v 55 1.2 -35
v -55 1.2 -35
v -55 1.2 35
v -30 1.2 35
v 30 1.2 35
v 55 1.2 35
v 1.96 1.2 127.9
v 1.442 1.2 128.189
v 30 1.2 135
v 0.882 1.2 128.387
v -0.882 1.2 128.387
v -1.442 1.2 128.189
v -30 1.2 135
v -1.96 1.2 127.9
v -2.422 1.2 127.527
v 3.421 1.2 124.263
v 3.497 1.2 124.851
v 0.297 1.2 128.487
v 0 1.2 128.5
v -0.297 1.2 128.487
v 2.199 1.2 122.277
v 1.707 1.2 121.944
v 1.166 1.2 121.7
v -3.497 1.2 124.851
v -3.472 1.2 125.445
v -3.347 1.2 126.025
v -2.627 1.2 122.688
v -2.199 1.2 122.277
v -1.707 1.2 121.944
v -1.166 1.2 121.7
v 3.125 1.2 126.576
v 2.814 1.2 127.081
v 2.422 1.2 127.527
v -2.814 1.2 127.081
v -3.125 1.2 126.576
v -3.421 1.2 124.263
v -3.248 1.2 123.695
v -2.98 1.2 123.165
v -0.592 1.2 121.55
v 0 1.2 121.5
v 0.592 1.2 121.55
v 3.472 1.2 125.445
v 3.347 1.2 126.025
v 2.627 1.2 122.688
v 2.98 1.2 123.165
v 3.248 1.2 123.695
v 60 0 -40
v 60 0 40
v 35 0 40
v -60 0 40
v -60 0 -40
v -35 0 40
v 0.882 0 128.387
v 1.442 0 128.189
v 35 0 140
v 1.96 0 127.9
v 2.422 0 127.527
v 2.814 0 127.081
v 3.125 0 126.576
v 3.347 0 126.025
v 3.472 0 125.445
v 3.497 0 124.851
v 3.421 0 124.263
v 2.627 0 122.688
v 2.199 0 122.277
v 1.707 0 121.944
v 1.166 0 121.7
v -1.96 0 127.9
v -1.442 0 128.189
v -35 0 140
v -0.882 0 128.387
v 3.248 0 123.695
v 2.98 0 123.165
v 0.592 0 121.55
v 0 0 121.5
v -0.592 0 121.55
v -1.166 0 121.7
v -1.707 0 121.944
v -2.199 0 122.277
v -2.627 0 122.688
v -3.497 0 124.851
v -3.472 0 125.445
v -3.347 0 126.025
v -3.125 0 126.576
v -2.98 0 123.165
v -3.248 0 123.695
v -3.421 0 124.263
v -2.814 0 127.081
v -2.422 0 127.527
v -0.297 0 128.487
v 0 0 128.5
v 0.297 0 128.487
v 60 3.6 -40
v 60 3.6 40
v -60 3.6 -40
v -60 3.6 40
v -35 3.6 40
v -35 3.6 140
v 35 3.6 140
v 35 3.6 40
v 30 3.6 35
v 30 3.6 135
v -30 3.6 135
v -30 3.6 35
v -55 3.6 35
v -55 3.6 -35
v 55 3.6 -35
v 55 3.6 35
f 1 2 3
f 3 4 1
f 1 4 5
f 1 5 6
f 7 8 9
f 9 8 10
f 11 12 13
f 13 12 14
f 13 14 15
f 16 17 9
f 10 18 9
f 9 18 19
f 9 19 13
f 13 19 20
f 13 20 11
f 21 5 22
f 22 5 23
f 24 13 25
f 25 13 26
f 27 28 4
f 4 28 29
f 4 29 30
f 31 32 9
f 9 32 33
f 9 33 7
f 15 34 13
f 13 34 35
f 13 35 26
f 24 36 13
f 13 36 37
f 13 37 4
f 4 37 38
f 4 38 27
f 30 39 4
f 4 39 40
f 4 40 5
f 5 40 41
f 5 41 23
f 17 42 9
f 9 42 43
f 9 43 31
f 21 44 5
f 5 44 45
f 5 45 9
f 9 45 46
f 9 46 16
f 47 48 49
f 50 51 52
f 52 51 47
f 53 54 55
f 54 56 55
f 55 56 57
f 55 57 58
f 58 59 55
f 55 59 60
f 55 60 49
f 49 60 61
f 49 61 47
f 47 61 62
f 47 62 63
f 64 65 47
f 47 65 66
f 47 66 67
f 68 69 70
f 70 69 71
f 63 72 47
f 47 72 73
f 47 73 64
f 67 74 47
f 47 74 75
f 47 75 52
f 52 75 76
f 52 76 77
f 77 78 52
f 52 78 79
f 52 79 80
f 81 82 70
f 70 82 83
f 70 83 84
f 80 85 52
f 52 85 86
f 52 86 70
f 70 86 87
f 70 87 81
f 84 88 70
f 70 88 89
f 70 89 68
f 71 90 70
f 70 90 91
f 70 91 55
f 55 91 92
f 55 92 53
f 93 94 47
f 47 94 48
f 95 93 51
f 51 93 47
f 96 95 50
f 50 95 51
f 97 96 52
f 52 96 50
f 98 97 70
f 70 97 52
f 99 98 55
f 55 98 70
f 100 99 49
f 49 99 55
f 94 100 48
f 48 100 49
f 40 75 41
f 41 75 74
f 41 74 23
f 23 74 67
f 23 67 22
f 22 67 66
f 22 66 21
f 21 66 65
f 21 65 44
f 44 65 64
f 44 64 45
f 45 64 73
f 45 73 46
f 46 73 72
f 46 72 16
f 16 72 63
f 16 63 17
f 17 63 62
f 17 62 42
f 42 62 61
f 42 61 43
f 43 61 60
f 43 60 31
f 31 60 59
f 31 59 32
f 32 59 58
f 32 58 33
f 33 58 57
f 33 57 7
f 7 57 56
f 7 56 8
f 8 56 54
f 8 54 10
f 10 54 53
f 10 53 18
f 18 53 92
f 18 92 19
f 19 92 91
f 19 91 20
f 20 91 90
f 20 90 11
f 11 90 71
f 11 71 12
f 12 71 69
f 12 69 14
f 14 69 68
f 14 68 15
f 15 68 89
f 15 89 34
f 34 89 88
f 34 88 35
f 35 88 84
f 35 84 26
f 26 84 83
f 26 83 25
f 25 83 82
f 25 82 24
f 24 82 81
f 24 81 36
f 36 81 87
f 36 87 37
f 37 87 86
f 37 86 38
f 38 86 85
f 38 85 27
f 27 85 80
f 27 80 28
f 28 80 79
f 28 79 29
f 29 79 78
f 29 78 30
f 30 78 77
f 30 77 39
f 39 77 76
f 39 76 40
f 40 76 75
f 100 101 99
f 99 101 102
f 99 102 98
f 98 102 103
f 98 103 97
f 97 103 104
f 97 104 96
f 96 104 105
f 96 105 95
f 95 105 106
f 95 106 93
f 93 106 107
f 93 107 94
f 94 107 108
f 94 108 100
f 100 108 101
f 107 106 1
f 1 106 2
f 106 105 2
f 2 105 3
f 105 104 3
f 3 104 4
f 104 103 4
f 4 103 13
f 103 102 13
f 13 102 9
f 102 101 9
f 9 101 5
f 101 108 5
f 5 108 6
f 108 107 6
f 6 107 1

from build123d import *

# Parameters (mm, degrees)
SKETCH1_R           = 3.5
BOSS_EXTRUDE1_DEPTH = 1.2
BOSS_EXTRUDE2_DEPTH = 2.4


with BuildPart() as part:
    # Sketch1 → Boss-Extrude1 (new body)
    with BuildSketch(Plane(origin=(0, 0, 0), x_dir=(1, 0, 0), z_dir=(0, 1, 0))):
        Polygon((-60, -40), (-35, -40), (-35, -140), (35, -140), (35, -40), (60, -40), (60, 40), (-60, 40), align=None)
        with Locations(Location((0, -125, 0), (0, 0, 270))):
            Circle(SKETCH1_R, mode=Mode.SUBTRACT)
    extrude(amount=BOSS_EXTRUDE1_DEPTH)

    # Sketch2 → Boss-Extrude2 (add)
    with BuildSketch(Plane(origin=(0, 1.2, 0), x_dir=(1, 0, 0), z_dir=(0, 1, 0))):
        Polygon((-60, -40), (-35, -40), (-35, -140), (35, -140), (35, -40), (60, -40), (60, 0), (60, 40), (-60, 40), (-60, 0), align=None)
        Polygon((-55, -35), (-30, -35), (-30, -135), (30, -135), (30, -35), (55, -35), (55, 0), (55, 35), (-55, 35), (-55, 0), align=None, mode=Mode.SUBTRACT)
    extrude(amount=BOSS_EXTRUDE2_DEPTH)


solid = part.part
